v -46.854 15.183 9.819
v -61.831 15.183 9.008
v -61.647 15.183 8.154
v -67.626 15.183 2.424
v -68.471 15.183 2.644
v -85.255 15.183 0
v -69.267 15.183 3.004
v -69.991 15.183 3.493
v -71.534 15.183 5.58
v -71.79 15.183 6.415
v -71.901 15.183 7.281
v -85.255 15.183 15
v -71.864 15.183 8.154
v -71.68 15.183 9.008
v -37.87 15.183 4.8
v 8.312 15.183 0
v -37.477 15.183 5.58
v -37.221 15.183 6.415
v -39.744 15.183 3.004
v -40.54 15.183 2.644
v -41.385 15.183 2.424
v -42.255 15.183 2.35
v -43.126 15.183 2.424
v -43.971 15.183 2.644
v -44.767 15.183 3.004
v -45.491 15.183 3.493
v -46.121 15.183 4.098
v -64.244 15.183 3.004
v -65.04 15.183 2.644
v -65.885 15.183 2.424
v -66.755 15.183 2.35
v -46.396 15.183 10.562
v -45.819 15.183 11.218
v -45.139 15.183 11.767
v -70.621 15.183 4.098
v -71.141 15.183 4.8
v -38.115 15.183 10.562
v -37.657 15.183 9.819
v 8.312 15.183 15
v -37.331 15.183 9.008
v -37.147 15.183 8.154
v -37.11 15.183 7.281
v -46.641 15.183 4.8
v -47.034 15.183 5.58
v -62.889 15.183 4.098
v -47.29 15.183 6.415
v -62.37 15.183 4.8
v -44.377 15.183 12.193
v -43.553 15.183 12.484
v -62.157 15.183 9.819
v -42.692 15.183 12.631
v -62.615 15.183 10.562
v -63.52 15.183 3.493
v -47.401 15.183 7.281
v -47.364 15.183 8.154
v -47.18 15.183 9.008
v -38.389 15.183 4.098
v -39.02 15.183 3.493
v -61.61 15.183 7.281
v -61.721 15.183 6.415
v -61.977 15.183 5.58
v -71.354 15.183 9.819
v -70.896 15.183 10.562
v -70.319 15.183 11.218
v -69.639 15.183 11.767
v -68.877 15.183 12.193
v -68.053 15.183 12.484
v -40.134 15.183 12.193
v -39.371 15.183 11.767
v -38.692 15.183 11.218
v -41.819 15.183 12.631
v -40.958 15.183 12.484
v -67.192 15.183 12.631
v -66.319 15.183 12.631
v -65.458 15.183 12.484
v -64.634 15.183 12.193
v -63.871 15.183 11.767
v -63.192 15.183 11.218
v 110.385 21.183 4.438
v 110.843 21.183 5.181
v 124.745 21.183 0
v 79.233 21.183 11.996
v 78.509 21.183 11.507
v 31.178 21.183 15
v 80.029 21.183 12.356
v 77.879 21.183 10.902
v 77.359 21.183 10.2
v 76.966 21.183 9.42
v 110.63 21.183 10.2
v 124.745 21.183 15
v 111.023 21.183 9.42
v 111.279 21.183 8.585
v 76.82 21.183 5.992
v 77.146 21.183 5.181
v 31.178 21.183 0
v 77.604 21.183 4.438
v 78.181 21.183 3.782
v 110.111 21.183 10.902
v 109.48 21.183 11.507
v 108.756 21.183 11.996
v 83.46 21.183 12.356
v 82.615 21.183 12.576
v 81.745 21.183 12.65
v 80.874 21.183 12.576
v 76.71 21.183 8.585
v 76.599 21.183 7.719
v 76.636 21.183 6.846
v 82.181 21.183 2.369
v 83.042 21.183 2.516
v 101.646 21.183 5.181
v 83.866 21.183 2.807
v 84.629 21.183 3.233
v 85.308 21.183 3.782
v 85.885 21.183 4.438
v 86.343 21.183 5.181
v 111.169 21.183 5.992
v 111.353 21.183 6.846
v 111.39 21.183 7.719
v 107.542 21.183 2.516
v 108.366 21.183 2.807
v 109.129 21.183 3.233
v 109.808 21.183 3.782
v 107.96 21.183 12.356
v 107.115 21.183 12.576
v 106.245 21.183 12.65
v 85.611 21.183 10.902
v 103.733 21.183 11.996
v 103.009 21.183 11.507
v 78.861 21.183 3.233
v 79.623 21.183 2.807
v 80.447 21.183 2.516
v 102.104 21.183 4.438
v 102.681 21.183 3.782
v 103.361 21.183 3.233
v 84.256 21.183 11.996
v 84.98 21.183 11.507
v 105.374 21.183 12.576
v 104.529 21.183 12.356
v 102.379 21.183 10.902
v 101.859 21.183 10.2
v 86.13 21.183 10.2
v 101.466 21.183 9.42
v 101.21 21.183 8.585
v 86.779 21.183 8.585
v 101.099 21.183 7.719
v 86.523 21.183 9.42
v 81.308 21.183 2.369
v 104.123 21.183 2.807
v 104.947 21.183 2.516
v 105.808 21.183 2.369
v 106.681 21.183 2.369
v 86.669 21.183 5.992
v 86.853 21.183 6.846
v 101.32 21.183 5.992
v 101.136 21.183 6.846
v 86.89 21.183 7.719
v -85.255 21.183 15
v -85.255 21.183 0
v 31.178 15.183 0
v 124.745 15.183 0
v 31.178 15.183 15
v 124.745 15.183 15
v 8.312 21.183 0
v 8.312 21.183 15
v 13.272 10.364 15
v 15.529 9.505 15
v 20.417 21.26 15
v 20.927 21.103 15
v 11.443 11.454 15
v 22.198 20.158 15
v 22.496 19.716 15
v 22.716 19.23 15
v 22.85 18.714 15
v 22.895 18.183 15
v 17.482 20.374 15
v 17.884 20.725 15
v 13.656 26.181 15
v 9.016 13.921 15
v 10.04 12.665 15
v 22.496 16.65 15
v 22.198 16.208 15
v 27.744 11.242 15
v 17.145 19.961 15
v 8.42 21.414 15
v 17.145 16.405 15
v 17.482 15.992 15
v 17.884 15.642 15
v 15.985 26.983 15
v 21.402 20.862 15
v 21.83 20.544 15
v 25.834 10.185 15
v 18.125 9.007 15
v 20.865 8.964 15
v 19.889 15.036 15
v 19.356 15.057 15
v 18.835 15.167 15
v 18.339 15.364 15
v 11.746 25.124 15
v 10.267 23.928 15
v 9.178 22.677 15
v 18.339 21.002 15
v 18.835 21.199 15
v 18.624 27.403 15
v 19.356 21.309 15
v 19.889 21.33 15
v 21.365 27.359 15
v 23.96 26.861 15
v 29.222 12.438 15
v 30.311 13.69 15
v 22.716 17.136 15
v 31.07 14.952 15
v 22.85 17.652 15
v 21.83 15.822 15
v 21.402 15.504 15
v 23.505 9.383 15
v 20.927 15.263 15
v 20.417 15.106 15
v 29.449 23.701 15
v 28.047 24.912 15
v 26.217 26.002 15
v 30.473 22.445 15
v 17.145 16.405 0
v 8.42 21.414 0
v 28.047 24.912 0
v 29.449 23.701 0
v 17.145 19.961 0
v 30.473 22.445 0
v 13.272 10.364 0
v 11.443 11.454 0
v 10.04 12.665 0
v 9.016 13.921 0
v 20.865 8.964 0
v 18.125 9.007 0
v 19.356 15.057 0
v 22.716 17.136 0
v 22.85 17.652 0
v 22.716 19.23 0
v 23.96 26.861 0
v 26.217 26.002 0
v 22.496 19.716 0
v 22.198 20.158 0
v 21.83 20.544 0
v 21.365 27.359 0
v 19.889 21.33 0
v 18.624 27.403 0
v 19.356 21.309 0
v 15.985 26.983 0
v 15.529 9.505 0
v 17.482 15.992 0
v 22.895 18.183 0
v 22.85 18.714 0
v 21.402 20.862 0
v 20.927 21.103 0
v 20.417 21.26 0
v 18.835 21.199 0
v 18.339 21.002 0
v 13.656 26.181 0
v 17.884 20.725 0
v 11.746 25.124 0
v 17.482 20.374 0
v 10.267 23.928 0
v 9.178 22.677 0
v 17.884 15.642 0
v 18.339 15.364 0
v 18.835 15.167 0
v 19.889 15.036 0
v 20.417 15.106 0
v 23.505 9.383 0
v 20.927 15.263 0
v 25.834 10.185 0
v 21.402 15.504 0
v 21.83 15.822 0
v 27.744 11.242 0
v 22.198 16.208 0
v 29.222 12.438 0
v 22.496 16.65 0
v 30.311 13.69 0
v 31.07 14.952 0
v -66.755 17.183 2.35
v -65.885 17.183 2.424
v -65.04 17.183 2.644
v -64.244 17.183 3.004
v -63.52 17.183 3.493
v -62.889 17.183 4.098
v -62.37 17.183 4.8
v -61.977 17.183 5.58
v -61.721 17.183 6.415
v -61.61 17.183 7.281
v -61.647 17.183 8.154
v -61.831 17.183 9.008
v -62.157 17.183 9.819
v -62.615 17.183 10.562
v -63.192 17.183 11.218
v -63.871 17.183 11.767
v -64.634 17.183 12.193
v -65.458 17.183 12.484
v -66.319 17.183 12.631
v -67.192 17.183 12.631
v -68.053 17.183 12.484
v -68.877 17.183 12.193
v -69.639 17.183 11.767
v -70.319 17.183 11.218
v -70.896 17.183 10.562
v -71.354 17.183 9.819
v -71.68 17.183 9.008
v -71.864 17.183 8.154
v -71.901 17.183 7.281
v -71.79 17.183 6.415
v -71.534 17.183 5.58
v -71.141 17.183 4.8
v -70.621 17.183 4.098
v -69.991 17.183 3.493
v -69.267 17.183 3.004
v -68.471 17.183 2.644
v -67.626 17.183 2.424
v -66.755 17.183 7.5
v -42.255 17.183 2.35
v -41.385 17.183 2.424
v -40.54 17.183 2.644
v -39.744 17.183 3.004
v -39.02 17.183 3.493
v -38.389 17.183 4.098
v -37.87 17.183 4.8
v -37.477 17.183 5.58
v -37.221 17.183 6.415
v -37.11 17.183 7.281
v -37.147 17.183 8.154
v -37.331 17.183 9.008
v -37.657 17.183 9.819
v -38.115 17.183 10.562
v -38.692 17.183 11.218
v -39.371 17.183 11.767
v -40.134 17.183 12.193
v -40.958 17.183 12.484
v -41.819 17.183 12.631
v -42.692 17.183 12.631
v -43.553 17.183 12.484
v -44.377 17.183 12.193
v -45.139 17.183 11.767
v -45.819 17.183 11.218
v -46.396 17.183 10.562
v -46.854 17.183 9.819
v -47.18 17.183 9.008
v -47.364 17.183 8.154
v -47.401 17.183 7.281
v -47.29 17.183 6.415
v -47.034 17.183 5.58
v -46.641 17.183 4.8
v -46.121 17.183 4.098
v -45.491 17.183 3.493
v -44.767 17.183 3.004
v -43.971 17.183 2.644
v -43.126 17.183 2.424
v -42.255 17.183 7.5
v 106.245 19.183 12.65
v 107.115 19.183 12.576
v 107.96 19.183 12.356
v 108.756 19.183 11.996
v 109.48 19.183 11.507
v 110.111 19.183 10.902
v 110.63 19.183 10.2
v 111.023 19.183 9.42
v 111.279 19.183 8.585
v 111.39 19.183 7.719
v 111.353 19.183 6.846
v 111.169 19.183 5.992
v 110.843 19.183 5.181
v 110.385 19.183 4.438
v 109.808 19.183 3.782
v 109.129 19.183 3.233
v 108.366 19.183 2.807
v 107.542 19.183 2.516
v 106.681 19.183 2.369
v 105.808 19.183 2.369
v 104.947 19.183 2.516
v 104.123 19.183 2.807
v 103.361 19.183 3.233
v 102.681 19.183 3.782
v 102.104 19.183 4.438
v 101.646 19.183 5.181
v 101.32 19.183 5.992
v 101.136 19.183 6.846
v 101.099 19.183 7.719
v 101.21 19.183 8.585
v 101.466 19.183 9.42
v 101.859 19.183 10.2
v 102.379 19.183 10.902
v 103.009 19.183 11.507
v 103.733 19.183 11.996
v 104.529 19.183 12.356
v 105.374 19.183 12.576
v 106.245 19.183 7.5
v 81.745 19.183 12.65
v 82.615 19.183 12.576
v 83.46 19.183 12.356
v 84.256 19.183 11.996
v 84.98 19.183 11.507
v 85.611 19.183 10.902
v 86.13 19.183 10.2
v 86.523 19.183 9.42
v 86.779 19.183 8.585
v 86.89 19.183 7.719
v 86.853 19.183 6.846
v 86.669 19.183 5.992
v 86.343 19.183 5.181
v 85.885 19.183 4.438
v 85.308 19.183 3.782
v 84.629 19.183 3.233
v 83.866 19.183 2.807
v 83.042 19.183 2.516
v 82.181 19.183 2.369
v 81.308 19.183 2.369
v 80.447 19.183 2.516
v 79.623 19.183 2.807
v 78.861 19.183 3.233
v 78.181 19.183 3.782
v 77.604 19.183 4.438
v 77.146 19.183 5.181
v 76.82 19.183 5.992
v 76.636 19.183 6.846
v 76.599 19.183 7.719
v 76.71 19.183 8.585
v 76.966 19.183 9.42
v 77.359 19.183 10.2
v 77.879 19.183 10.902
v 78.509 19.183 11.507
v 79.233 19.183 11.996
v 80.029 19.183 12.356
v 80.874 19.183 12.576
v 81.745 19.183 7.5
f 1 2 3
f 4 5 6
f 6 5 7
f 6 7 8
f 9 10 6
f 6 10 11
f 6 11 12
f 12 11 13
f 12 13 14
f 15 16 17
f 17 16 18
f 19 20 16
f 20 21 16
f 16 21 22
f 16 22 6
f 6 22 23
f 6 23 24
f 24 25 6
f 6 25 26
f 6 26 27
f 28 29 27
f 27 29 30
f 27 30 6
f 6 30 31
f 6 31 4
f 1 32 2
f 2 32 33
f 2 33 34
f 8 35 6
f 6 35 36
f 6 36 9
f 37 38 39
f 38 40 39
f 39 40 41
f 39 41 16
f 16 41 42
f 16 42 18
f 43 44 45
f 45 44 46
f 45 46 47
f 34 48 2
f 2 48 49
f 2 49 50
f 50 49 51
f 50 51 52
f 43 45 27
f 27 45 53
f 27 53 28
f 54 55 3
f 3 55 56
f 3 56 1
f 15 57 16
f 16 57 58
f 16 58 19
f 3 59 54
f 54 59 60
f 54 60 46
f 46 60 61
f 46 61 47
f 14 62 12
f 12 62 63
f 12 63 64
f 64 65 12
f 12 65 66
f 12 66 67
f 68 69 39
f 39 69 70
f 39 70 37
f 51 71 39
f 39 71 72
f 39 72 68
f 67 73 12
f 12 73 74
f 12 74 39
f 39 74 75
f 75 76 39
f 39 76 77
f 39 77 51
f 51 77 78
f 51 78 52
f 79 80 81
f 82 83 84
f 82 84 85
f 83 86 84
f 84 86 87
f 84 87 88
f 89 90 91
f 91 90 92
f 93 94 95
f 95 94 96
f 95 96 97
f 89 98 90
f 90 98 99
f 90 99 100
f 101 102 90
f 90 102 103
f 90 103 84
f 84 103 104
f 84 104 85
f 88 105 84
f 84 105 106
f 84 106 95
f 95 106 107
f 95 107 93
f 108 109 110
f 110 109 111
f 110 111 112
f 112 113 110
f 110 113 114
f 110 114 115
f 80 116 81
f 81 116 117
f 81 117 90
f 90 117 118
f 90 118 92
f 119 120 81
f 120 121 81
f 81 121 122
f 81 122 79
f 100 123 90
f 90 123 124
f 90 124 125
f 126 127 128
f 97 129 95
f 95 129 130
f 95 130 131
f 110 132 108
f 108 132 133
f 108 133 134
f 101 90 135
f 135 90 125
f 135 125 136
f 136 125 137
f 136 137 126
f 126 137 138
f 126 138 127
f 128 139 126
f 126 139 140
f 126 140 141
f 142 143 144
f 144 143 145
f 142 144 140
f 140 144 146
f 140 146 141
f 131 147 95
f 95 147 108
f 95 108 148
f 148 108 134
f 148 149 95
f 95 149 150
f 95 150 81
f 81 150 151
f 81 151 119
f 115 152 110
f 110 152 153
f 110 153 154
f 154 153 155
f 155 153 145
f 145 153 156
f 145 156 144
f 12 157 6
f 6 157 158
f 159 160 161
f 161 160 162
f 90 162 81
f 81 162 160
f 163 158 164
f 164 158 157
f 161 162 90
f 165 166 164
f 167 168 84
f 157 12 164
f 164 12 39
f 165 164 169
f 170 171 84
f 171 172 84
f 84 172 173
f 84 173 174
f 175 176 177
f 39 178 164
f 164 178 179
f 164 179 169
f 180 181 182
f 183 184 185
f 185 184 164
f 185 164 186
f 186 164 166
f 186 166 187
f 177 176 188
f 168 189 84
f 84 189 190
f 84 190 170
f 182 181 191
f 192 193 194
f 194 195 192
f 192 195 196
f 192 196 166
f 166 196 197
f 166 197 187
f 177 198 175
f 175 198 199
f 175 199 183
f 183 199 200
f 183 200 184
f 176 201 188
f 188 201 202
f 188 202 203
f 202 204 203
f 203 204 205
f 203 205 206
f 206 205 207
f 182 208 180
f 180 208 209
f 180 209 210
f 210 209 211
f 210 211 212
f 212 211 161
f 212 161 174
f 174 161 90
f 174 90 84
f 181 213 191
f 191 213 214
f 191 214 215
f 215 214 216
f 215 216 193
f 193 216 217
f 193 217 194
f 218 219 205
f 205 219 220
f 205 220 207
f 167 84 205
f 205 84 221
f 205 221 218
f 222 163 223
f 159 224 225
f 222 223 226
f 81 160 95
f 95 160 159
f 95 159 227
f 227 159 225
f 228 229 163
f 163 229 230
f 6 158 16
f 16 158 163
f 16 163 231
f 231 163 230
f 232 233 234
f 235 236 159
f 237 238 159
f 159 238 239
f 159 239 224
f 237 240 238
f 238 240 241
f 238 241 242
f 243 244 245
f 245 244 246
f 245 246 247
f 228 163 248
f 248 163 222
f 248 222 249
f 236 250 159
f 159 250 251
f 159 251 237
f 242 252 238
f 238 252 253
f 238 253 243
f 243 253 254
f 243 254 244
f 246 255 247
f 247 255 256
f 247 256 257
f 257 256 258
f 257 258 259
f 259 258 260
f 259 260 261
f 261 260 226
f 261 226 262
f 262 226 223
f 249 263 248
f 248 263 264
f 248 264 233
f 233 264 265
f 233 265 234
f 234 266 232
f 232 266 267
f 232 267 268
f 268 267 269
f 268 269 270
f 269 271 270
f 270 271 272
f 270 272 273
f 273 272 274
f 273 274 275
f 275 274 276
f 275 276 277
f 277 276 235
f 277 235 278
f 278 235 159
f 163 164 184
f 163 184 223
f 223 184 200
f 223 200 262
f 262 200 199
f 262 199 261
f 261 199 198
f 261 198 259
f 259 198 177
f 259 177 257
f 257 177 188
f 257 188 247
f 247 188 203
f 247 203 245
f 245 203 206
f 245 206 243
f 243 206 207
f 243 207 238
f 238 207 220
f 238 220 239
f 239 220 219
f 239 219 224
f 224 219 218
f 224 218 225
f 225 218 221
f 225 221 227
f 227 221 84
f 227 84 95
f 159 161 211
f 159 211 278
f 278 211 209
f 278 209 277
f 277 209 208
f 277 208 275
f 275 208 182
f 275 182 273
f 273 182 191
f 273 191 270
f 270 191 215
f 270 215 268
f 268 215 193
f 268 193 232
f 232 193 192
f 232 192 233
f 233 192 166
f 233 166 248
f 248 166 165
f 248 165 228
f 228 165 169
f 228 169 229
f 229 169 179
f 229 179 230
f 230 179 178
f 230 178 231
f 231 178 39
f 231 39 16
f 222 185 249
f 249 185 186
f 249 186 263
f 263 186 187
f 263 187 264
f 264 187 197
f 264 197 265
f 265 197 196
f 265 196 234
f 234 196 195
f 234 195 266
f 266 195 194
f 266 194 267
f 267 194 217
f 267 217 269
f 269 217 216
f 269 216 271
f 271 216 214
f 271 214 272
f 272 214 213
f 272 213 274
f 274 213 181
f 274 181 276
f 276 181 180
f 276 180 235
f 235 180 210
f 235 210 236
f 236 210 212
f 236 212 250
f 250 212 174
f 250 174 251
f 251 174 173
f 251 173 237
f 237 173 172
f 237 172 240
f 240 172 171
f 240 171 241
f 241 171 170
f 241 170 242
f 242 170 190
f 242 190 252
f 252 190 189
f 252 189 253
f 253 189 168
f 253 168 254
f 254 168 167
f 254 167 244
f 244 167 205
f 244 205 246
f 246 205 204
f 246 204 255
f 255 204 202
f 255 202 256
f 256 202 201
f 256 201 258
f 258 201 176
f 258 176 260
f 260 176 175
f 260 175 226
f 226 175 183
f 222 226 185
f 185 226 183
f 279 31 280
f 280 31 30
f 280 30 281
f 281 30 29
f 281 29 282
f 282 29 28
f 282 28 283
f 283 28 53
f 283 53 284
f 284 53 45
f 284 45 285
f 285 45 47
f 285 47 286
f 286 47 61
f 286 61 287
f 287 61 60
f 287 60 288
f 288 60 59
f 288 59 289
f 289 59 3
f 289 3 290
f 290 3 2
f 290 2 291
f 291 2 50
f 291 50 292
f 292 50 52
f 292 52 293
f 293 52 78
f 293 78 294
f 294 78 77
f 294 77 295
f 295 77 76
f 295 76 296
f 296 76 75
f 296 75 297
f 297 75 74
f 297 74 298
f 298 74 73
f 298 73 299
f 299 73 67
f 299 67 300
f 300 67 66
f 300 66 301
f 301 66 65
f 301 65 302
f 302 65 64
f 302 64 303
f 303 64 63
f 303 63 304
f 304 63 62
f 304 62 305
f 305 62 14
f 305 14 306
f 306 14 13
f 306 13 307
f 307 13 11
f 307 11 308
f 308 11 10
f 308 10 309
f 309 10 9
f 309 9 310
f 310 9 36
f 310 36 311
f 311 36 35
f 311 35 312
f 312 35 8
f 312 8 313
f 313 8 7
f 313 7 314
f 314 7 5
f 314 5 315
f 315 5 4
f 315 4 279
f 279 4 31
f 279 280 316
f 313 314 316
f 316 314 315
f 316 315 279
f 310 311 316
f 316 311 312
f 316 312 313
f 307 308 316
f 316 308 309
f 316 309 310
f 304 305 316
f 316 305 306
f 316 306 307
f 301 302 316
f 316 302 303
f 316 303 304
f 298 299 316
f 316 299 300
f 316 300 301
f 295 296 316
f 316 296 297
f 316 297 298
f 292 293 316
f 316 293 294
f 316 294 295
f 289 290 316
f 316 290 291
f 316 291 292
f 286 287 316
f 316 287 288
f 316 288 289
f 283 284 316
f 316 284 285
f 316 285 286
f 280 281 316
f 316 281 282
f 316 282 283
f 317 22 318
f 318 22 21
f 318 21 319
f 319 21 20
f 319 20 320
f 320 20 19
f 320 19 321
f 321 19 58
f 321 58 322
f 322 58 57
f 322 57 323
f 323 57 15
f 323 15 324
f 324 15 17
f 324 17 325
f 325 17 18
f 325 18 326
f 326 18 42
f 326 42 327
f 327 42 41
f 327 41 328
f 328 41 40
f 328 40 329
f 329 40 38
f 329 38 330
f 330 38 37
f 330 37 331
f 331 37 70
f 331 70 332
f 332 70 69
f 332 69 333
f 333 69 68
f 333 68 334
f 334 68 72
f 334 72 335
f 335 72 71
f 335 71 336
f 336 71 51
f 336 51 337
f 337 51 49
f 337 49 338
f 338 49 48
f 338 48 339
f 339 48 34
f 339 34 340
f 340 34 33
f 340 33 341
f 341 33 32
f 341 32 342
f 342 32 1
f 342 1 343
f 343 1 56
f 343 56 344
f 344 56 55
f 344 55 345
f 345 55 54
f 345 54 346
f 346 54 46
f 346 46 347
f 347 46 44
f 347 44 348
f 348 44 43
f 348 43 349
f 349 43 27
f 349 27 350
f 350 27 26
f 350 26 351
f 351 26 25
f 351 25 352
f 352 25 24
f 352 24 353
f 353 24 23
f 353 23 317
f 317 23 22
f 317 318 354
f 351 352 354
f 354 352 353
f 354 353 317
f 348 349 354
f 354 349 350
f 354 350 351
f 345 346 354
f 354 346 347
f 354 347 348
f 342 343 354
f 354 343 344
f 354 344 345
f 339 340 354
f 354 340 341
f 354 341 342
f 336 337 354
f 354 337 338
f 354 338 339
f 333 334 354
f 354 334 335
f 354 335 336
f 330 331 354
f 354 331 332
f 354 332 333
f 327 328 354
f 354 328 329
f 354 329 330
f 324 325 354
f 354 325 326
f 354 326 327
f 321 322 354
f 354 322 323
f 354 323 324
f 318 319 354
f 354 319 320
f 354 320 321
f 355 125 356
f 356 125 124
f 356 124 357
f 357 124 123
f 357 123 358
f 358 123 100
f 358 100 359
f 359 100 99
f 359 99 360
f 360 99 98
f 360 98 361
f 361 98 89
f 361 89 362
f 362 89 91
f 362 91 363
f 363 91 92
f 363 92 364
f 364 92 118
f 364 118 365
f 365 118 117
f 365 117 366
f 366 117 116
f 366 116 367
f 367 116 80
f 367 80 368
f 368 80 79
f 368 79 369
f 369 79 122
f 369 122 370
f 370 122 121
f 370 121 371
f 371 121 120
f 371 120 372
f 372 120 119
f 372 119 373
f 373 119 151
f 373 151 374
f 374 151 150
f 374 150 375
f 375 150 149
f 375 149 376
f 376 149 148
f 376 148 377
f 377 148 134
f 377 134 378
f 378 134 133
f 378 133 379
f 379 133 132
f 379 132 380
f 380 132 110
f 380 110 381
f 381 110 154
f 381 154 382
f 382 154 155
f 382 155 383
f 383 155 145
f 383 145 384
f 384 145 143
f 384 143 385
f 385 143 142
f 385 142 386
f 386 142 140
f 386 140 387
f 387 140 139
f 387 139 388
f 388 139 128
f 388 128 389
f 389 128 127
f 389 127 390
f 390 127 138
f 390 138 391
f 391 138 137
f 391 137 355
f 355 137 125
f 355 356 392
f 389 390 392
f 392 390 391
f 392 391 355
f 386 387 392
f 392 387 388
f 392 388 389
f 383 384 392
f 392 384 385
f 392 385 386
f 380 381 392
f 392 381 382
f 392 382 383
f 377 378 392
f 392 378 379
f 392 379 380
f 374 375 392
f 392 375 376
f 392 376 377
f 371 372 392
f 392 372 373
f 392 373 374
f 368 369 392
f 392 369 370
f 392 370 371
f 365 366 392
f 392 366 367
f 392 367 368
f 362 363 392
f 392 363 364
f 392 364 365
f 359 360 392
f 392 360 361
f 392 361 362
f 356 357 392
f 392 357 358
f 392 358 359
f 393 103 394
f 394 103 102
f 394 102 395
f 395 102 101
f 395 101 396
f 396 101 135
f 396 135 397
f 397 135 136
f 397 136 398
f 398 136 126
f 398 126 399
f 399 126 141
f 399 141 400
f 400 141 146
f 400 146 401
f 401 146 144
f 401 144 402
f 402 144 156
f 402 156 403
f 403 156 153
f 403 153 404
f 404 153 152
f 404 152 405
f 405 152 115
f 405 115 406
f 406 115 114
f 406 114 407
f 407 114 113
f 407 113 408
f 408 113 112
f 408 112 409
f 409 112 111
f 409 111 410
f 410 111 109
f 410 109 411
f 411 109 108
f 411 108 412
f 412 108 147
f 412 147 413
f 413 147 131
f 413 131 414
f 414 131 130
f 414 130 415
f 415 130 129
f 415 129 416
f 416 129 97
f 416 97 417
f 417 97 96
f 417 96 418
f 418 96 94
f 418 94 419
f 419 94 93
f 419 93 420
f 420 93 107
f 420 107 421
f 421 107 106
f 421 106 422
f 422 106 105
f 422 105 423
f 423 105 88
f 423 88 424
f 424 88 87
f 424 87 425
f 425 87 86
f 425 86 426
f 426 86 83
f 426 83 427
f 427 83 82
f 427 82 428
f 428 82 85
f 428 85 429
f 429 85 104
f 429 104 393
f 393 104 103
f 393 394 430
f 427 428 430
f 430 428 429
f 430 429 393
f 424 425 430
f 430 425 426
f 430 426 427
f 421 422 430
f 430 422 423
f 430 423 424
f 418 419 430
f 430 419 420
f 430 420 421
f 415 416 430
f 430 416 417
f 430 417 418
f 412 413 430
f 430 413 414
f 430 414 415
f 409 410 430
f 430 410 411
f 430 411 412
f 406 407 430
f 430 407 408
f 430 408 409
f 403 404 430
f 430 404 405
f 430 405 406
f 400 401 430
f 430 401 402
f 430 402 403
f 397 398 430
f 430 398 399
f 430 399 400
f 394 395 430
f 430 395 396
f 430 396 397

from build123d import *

# Parameters (mm, degrees)
SKETCH1_W           = 210
SKETCH1_H           = 6
BOSS_EXTRUDE1_DEPTH = 15
SKETCH2_RX          = 12.084795348
SKETCH2_RY          = 9.25941939
BOSS_EXTRUDE2_DEPTH = 15
SKETCH3_R           = 3.15
CUT_EXTRUDE1_DEPTH  = 15
BOSS_EXTRUDE3_DEPTH = 15
SKETCH5_R           = 5.15
CUT_EXTRUDE2_DEPTH  = 2
SKETCH6_R           = 5.15
CUT_EXTRUDE3_DEPTH  = 2


with BuildPart() as part:
    # Sketch1 → Boss-Extrude1 (new body)
    with BuildSketch(Plane.XY):
        with Locations((19.744707347, 18.183063512)):
            Rectangle(SKETCH1_W, SKETCH1_H)
    extrude(amount=BOSS_EXTRUDE1_DEPTH)

    # Sketch2 → Boss-Extrude2 (add)
    with BuildSketch(Plane.XY.offset(15)):
        with Locations((19.744707347, 18.183063512)):
            Ellipse(SKETCH2_RX, SKETCH2_RY)
    extrude(amount=-BOSS_EXTRUDE2_DEPTH)

    # Sketch3 → Cut-Extrude1 (cut)
    with BuildSketch(Plane.XY.offset(15)):
        with Locations((19.744707347, 18.183063512)):
            Circle(SKETCH3_R)
    extrude(amount=-CUT_EXTRUDE1_DEPTH, mode=Mode.SUBTRACT)

    # Sketch4 → Boss-Extrude3 (add)
    with BuildSketch(Plane.XY.offset(15)):
        with BuildLine():
            Line((17.144707347, 19.961405436), (17.144707347, 16.404721587))
            ThreePointArc((17.144707347, 16.404721587), (16.583900133, 18.183063512), (17.144707347, 19.961405436))
        make_face()
    extrude(amount=-BOSS_EXTRUDE3_DEPTH)

    # Sketch5 → Cut-Extrude2 (cut)
    with BuildSketch(Plane.XZ.offset(-15.183063512)):
        with Locations((-42.255292653, 7.5)):
            Circle(SKETCH5_R)
        with Locations((-66.755292653, 7.5)):
            Circle(SKETCH5_R)
    extrude(amount=-CUT_EXTRUDE2_DEPTH, mode=Mode.SUBTRACT)

    # Sketch6 → Cut-Extrude3 (cut)
    with BuildSketch(Plane(origin=(0, 21.183063512, 0), x_dir=(1, 0, 0), z_dir=(0, 1, 0))):
        with Locations((81.744707347, -7.5)):
            Circle(SKETCH6_R)
        with Locations((106.244707347, -7.5)):
            Circle(SKETCH6_R)
    extrude(amount=-CUT_EXTRUDE3_DEPTH, mode=Mode.SUBTRACT)


solid = part.part
